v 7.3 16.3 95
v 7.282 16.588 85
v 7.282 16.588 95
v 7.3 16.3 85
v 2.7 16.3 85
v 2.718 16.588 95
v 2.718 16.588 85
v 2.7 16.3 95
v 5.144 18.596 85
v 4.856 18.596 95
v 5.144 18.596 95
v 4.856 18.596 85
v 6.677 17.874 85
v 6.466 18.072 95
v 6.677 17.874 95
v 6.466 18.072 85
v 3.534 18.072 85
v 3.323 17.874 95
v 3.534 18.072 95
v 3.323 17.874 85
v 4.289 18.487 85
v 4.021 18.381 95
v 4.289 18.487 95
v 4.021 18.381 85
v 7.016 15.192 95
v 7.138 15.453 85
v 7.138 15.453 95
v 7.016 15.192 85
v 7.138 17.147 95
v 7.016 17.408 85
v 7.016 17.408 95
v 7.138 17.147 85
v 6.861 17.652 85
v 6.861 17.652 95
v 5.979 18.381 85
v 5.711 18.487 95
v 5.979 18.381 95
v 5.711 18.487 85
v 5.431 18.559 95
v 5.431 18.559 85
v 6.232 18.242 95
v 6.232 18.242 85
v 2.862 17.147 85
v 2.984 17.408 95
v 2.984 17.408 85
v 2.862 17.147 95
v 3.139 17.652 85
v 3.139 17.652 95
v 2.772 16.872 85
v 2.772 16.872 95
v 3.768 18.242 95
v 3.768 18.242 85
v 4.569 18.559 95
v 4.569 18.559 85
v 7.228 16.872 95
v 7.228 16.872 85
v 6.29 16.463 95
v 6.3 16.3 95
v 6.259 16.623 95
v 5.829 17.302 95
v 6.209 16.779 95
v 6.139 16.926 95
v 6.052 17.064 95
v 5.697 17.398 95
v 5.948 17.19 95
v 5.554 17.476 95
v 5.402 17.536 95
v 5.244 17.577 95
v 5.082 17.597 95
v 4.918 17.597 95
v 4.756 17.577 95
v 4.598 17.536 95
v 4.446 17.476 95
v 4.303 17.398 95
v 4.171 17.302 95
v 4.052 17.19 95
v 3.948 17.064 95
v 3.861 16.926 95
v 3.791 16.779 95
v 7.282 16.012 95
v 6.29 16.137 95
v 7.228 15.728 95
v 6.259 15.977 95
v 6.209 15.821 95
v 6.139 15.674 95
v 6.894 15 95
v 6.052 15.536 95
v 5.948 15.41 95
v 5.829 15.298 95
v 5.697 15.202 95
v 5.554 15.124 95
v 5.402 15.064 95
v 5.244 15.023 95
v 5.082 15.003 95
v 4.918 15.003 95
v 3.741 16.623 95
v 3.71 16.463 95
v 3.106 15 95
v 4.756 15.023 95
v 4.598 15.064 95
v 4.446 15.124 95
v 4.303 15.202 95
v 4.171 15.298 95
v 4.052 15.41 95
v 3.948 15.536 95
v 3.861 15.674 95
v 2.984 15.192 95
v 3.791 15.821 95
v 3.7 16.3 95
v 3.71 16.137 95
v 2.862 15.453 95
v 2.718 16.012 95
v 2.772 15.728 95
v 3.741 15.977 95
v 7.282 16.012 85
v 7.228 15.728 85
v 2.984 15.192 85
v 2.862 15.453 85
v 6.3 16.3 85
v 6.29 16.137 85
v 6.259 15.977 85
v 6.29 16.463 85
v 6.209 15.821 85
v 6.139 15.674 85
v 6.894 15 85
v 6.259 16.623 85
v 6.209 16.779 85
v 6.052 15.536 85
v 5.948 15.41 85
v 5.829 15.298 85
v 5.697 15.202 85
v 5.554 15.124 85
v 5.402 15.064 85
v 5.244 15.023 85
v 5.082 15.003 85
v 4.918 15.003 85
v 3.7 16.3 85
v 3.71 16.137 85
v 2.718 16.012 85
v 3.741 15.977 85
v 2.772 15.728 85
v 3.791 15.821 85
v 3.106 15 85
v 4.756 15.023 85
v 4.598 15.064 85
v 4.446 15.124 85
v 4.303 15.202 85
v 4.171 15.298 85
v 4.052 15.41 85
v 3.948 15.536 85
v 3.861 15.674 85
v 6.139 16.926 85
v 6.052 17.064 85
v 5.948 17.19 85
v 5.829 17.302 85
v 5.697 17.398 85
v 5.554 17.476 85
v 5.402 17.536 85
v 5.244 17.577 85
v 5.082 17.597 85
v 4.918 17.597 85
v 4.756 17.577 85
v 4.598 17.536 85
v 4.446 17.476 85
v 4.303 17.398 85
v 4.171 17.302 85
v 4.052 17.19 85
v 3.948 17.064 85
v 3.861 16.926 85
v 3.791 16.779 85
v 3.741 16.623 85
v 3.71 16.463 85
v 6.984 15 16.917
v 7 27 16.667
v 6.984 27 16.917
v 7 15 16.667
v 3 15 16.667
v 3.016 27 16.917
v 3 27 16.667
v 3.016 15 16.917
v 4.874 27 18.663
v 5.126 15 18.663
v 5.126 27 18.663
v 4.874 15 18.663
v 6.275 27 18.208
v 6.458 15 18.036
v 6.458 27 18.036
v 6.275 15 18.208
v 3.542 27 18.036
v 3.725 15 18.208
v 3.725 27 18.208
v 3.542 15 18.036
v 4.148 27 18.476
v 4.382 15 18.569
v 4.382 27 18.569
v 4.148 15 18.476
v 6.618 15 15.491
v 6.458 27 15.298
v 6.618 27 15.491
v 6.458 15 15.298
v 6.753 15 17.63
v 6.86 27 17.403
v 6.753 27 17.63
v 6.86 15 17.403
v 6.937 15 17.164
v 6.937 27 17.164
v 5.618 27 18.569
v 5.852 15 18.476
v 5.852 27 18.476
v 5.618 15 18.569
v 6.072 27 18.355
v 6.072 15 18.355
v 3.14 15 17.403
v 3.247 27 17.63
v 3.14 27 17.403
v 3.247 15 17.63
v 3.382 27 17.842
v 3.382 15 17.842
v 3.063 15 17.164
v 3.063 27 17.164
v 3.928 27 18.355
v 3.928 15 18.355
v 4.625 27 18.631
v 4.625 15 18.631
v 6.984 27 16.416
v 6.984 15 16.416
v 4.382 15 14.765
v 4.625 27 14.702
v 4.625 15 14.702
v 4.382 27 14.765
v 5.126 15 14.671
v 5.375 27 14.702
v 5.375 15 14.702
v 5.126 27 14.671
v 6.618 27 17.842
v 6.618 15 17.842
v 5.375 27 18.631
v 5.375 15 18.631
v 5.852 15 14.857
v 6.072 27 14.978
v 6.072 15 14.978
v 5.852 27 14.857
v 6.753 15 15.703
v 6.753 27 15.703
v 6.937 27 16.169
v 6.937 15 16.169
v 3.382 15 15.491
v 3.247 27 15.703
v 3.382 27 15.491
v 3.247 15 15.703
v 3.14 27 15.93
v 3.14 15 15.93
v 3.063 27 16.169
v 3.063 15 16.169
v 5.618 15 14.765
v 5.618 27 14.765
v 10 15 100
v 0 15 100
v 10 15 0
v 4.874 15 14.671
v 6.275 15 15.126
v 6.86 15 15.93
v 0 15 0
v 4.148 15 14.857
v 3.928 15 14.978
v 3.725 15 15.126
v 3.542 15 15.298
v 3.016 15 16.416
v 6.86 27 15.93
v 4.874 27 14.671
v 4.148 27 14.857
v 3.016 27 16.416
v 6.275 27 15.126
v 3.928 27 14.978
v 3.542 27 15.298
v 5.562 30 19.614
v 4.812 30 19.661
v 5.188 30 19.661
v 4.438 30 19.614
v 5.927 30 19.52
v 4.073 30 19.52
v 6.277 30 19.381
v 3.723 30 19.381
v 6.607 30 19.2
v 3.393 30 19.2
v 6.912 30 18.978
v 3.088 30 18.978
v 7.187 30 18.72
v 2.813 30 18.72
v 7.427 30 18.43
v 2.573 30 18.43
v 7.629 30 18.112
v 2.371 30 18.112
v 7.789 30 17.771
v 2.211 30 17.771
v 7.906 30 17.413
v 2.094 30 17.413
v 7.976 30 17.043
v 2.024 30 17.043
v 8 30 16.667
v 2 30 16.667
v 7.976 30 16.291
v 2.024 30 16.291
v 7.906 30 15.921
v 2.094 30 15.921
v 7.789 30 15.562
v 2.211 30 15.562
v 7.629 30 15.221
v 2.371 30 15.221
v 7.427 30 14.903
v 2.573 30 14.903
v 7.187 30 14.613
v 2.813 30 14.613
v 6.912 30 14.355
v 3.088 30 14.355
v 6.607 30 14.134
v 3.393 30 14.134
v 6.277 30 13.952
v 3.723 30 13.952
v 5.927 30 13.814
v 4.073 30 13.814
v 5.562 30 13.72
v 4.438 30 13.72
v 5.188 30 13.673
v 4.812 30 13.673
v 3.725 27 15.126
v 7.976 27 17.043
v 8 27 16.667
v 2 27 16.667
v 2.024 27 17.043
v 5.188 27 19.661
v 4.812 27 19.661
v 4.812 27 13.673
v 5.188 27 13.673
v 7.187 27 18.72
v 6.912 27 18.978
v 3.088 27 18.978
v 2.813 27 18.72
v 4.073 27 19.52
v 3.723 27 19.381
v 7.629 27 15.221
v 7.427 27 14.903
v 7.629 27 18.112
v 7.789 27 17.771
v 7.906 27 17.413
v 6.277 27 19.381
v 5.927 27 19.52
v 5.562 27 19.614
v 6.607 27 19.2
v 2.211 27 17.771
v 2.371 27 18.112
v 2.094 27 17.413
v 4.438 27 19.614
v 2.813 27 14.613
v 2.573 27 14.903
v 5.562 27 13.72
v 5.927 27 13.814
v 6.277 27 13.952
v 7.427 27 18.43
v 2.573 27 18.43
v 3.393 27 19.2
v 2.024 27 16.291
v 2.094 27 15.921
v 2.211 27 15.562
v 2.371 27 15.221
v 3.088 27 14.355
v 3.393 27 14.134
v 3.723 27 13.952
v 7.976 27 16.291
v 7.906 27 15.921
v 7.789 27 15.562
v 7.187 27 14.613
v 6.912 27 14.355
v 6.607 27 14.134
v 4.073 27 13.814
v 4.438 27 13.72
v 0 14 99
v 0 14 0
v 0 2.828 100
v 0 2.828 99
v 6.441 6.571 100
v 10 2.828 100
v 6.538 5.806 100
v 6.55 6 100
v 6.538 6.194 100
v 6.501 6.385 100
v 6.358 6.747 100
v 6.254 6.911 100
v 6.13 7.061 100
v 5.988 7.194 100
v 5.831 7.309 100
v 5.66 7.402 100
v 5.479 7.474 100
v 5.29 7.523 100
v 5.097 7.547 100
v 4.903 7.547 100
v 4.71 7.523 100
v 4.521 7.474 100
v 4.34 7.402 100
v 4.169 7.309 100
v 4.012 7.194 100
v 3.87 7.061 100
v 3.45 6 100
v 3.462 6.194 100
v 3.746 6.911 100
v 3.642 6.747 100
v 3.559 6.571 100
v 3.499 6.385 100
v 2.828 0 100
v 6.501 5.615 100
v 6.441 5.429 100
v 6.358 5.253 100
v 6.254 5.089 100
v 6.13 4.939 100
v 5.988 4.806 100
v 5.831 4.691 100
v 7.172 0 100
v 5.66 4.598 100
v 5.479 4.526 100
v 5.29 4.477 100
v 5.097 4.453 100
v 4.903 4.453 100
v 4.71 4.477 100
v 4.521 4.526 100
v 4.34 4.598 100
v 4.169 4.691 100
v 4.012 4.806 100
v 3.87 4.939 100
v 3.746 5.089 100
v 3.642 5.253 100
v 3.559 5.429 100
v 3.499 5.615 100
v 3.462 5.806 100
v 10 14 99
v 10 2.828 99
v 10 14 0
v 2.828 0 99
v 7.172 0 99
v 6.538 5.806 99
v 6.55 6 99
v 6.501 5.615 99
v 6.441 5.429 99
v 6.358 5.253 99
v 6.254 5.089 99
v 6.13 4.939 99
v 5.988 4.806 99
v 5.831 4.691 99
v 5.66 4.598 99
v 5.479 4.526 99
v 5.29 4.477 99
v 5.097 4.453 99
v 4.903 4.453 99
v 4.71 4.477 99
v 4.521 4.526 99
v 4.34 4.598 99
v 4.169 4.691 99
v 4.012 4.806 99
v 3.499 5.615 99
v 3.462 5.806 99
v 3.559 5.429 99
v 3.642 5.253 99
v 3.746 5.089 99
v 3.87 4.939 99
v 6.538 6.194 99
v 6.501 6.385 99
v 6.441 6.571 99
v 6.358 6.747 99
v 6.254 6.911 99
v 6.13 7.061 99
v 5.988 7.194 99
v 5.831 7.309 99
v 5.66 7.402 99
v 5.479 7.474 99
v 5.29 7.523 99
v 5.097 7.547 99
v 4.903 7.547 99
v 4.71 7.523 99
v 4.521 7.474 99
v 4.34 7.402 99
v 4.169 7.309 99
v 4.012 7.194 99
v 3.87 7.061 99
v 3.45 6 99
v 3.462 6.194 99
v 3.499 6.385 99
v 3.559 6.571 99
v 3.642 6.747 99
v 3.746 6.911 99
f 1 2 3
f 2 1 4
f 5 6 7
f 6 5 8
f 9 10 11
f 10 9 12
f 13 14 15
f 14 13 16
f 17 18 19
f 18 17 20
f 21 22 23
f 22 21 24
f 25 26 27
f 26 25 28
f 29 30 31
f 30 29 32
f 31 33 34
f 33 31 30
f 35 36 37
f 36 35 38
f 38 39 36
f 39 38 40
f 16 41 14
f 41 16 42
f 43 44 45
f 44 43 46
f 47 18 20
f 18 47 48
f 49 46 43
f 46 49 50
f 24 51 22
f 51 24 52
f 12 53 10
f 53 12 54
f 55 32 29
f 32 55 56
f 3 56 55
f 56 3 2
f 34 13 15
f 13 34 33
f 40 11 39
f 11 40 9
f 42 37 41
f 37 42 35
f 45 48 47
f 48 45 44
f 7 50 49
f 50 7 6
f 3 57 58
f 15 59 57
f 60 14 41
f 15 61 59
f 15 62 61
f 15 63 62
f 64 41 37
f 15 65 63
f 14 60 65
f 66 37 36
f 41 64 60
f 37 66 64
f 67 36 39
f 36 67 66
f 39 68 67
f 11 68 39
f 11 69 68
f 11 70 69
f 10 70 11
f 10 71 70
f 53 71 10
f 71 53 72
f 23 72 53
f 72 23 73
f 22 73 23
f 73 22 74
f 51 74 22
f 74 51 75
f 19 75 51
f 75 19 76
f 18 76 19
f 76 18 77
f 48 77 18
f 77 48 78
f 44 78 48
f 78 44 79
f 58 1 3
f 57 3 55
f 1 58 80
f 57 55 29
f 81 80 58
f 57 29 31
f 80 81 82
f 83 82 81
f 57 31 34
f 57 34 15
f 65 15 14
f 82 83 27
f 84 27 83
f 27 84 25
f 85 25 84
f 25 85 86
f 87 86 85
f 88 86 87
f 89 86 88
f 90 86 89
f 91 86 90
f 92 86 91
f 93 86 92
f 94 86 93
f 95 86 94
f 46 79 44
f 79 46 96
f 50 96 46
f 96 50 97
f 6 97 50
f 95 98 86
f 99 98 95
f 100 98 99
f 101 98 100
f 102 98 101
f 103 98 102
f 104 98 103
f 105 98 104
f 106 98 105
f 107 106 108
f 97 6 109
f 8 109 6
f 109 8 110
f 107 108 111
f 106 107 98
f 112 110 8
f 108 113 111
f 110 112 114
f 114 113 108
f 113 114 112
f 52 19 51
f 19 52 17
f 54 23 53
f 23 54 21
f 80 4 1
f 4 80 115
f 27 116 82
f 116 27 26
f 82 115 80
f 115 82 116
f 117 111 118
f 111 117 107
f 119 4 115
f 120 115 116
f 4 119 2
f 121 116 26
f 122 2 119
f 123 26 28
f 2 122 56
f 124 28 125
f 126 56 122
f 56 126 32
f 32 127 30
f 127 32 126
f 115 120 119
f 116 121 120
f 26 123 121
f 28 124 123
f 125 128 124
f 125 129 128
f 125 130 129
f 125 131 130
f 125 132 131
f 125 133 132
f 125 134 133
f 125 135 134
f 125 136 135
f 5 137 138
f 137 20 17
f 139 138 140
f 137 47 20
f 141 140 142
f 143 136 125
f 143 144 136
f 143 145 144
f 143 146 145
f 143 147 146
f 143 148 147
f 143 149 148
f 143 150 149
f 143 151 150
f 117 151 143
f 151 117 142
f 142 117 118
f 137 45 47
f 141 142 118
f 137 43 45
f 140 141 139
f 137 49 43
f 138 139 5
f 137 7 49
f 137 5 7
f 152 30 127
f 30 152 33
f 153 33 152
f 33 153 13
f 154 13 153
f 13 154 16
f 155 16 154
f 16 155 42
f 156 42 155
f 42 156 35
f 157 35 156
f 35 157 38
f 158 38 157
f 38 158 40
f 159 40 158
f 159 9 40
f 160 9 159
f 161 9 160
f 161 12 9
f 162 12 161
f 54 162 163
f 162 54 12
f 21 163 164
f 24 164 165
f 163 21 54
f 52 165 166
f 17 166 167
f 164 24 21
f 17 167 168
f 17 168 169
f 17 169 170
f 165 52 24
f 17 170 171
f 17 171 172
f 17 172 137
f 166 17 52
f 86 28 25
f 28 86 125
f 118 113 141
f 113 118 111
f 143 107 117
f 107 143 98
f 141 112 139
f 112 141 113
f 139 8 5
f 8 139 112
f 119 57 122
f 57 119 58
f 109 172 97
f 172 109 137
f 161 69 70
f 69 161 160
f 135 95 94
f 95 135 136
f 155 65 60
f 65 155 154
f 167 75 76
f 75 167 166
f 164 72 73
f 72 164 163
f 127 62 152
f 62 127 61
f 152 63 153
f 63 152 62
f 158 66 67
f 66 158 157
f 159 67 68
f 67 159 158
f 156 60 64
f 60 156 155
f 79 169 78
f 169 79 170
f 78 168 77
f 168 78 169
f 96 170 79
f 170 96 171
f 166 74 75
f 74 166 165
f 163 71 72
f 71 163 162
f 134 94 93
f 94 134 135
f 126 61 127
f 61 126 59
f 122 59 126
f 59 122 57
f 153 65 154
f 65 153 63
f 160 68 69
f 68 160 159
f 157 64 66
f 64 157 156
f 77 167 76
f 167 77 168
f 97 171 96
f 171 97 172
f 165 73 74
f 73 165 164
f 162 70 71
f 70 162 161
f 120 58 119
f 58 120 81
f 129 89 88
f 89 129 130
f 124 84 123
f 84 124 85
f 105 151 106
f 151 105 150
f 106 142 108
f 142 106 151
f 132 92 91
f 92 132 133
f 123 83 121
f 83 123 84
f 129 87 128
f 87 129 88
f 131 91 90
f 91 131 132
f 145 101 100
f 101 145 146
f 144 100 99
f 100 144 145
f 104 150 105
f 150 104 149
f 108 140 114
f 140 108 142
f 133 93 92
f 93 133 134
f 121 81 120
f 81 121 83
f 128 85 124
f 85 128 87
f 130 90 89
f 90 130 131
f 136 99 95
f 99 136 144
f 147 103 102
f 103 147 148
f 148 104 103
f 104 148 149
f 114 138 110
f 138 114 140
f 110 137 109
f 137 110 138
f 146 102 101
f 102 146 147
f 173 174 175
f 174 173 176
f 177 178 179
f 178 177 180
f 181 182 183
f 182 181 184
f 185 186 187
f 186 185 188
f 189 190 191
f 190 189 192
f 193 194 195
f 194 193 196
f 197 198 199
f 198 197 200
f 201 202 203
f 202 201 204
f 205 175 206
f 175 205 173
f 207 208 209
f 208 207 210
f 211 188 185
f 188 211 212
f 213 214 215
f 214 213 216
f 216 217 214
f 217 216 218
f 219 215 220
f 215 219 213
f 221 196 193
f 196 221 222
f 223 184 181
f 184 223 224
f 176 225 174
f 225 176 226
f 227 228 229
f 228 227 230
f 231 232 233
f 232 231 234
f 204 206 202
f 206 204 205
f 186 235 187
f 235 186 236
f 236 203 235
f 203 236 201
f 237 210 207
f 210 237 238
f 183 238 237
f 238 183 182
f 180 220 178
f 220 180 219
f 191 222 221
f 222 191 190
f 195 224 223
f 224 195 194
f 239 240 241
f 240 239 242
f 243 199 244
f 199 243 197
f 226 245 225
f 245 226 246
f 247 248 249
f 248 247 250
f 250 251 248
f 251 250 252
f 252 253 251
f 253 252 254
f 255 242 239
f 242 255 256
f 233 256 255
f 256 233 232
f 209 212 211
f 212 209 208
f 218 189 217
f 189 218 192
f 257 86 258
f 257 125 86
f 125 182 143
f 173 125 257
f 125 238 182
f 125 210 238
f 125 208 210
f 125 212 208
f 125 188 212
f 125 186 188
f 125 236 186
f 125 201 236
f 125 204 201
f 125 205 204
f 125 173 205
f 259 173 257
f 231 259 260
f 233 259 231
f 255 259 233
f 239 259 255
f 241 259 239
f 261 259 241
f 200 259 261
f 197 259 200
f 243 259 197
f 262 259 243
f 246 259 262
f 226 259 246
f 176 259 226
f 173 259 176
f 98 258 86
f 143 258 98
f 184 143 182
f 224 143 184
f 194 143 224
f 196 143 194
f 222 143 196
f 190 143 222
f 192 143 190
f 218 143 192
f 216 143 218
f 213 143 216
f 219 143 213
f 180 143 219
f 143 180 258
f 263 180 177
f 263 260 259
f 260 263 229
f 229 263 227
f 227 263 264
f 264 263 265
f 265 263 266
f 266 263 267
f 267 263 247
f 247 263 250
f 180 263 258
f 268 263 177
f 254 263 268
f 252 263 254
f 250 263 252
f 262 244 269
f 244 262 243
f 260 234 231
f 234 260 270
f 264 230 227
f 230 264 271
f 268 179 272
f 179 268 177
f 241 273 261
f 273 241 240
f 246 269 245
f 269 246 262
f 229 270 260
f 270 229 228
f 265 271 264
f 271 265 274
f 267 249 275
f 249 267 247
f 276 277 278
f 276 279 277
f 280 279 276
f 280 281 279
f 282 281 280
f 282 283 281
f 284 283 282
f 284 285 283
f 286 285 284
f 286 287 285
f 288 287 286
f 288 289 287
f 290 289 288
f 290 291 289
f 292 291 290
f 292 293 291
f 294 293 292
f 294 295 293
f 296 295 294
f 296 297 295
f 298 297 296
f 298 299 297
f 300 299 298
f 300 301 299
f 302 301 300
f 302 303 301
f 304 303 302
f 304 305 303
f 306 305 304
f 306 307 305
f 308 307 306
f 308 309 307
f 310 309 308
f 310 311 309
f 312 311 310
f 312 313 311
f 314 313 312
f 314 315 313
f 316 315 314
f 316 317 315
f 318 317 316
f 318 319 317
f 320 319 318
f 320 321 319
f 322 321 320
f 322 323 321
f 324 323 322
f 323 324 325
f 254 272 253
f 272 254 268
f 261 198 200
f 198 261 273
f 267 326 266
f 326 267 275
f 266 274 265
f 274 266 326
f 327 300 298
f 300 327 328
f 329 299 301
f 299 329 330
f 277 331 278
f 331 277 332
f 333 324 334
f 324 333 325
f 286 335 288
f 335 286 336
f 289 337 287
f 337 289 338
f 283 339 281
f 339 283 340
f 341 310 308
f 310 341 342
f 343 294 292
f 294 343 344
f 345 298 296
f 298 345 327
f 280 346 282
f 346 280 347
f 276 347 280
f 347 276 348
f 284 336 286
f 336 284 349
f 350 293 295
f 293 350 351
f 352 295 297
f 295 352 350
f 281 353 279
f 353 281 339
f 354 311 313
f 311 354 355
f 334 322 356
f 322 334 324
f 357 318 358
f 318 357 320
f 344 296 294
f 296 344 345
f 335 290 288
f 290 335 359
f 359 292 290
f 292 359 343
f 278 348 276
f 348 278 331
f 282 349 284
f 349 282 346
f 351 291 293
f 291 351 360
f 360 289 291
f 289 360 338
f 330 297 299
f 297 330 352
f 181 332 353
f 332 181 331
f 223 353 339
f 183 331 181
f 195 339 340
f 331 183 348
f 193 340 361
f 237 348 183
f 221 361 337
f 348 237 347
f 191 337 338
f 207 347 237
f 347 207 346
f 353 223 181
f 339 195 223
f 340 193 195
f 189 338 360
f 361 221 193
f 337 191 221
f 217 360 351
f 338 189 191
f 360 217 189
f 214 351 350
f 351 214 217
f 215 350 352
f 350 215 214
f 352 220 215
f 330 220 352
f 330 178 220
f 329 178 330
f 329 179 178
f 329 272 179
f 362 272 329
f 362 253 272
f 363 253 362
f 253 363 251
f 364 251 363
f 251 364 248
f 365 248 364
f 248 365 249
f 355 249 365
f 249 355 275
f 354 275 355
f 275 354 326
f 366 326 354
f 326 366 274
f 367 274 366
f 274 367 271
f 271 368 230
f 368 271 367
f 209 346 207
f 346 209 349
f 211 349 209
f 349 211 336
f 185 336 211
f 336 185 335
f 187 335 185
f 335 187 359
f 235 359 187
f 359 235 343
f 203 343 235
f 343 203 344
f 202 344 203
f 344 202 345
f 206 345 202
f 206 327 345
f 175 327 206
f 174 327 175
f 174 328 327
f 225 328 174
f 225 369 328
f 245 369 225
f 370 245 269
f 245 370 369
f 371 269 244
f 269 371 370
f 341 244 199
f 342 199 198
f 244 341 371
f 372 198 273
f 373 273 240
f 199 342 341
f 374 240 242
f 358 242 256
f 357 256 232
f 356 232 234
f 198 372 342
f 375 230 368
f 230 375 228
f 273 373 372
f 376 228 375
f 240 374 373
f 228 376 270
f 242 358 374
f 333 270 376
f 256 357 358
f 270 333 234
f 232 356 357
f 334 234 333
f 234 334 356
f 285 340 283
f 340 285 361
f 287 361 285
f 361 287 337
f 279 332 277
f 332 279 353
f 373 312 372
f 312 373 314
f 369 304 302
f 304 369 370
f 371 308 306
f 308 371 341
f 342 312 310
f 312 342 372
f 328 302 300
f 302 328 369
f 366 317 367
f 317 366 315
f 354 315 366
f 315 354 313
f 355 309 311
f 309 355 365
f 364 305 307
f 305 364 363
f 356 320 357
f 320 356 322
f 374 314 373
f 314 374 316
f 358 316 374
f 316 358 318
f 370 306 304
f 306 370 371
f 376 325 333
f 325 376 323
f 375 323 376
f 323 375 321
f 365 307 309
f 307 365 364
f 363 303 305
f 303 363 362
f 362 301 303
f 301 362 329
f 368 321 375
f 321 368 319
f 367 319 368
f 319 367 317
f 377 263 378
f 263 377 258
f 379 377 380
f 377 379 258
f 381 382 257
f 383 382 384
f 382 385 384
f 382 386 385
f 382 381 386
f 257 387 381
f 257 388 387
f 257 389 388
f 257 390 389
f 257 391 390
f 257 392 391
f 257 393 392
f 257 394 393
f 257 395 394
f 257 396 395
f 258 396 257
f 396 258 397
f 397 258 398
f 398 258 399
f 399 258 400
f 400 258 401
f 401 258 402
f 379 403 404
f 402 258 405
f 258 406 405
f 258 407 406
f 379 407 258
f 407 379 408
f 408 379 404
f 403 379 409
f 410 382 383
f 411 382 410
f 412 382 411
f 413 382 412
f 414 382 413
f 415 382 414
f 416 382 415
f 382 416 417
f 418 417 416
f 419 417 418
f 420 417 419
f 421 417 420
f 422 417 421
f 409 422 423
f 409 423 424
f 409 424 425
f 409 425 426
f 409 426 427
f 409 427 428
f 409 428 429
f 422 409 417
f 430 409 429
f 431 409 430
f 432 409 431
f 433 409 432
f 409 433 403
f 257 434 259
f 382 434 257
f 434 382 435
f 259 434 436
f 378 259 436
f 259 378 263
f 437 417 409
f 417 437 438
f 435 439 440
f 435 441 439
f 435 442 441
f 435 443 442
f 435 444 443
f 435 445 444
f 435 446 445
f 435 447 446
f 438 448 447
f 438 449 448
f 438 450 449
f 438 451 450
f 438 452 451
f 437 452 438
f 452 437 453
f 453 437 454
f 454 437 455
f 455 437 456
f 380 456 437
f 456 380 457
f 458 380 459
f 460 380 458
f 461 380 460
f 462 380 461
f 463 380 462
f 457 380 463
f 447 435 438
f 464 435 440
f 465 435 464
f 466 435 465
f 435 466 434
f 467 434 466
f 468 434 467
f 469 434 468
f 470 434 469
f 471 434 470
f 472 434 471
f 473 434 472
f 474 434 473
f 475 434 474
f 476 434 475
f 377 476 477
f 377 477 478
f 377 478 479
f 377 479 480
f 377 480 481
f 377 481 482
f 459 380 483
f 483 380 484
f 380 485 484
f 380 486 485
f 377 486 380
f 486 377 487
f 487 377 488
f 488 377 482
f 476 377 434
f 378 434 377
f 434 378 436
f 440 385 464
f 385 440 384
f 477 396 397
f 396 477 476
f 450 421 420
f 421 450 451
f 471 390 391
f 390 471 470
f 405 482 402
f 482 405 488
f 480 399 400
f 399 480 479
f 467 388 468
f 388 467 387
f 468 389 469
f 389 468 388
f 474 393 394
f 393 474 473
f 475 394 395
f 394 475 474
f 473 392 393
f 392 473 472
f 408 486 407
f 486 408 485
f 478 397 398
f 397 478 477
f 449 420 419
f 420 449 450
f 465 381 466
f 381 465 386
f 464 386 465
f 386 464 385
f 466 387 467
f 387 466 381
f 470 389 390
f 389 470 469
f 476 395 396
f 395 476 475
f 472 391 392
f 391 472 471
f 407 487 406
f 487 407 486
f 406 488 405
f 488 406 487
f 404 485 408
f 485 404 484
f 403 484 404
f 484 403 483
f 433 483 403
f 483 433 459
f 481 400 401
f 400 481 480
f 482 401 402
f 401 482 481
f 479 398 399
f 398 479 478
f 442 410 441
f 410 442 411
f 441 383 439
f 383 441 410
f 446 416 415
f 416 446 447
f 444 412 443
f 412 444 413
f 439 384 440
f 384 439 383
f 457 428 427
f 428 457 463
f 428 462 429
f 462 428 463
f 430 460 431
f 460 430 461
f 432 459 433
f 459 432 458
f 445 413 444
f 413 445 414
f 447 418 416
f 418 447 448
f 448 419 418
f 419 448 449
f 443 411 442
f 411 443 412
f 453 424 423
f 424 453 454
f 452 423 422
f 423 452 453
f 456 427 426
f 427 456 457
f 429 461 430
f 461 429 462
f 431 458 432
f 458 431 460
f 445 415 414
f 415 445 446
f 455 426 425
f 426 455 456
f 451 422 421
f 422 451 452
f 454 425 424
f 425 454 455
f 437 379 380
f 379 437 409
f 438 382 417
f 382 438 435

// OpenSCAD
/* mpsm_mini_tool_holder.scad
Author: andimoto@posteo.de
----------------------------
for placing assambled parts and
single parts go to end of this file!
 */
$fn=50;

wallThickness = 1; //mm
xSize = 10;
ySize = 15;
zSize = 100;
mpsmScrewRadius=1.55;
screwDepth=ySize-9;

rAllenKey=1.3;
cylinderHeight=10;
extra=5;

pinHeigth=15;

module tool_holder()
{
  difference() {
    cube([xSize,ySize,zSize]);
    cube([xSize, ySize-wallThickness, zSize-wallThickness]);

    /* mounting hole */
    translate([(xSize/2),screwDepth,zSize-wallThickness]) cylinder(r=mpsmScrewRadius,h=wallThickness);

    #translate([0,0,zSize-wallThickness/2]) rotate([0,0,45]) cube([4,4,wallThickness],center=true);
    #translate([xSize,0,zSize-wallThickness/2]) rotate([0,0,45]) cube([4,4,wallThickness],center=true);
  }

  /* allenkey holder */
  translate([xSize/2,ySize+rAllenKey,zSize-cylinderHeight-extra])
  union()
  {
    difference()
    {
      cylinder(r=rAllenKey+1,h=cylinderHeight,center=false);
      cylinder(r=rAllenKey,h=cylinderHeight,center=false);
    }
  }

  translate([xSize/2,ySize+pinHeigth,zSize/6]) rotate([90,0,0]) pins();

}

/* extra pins */
module pins()
{
  cylinder(r=2, h=pinHeigth);
  cylinder(r=2+1, h=3);
}


tool_holder();
